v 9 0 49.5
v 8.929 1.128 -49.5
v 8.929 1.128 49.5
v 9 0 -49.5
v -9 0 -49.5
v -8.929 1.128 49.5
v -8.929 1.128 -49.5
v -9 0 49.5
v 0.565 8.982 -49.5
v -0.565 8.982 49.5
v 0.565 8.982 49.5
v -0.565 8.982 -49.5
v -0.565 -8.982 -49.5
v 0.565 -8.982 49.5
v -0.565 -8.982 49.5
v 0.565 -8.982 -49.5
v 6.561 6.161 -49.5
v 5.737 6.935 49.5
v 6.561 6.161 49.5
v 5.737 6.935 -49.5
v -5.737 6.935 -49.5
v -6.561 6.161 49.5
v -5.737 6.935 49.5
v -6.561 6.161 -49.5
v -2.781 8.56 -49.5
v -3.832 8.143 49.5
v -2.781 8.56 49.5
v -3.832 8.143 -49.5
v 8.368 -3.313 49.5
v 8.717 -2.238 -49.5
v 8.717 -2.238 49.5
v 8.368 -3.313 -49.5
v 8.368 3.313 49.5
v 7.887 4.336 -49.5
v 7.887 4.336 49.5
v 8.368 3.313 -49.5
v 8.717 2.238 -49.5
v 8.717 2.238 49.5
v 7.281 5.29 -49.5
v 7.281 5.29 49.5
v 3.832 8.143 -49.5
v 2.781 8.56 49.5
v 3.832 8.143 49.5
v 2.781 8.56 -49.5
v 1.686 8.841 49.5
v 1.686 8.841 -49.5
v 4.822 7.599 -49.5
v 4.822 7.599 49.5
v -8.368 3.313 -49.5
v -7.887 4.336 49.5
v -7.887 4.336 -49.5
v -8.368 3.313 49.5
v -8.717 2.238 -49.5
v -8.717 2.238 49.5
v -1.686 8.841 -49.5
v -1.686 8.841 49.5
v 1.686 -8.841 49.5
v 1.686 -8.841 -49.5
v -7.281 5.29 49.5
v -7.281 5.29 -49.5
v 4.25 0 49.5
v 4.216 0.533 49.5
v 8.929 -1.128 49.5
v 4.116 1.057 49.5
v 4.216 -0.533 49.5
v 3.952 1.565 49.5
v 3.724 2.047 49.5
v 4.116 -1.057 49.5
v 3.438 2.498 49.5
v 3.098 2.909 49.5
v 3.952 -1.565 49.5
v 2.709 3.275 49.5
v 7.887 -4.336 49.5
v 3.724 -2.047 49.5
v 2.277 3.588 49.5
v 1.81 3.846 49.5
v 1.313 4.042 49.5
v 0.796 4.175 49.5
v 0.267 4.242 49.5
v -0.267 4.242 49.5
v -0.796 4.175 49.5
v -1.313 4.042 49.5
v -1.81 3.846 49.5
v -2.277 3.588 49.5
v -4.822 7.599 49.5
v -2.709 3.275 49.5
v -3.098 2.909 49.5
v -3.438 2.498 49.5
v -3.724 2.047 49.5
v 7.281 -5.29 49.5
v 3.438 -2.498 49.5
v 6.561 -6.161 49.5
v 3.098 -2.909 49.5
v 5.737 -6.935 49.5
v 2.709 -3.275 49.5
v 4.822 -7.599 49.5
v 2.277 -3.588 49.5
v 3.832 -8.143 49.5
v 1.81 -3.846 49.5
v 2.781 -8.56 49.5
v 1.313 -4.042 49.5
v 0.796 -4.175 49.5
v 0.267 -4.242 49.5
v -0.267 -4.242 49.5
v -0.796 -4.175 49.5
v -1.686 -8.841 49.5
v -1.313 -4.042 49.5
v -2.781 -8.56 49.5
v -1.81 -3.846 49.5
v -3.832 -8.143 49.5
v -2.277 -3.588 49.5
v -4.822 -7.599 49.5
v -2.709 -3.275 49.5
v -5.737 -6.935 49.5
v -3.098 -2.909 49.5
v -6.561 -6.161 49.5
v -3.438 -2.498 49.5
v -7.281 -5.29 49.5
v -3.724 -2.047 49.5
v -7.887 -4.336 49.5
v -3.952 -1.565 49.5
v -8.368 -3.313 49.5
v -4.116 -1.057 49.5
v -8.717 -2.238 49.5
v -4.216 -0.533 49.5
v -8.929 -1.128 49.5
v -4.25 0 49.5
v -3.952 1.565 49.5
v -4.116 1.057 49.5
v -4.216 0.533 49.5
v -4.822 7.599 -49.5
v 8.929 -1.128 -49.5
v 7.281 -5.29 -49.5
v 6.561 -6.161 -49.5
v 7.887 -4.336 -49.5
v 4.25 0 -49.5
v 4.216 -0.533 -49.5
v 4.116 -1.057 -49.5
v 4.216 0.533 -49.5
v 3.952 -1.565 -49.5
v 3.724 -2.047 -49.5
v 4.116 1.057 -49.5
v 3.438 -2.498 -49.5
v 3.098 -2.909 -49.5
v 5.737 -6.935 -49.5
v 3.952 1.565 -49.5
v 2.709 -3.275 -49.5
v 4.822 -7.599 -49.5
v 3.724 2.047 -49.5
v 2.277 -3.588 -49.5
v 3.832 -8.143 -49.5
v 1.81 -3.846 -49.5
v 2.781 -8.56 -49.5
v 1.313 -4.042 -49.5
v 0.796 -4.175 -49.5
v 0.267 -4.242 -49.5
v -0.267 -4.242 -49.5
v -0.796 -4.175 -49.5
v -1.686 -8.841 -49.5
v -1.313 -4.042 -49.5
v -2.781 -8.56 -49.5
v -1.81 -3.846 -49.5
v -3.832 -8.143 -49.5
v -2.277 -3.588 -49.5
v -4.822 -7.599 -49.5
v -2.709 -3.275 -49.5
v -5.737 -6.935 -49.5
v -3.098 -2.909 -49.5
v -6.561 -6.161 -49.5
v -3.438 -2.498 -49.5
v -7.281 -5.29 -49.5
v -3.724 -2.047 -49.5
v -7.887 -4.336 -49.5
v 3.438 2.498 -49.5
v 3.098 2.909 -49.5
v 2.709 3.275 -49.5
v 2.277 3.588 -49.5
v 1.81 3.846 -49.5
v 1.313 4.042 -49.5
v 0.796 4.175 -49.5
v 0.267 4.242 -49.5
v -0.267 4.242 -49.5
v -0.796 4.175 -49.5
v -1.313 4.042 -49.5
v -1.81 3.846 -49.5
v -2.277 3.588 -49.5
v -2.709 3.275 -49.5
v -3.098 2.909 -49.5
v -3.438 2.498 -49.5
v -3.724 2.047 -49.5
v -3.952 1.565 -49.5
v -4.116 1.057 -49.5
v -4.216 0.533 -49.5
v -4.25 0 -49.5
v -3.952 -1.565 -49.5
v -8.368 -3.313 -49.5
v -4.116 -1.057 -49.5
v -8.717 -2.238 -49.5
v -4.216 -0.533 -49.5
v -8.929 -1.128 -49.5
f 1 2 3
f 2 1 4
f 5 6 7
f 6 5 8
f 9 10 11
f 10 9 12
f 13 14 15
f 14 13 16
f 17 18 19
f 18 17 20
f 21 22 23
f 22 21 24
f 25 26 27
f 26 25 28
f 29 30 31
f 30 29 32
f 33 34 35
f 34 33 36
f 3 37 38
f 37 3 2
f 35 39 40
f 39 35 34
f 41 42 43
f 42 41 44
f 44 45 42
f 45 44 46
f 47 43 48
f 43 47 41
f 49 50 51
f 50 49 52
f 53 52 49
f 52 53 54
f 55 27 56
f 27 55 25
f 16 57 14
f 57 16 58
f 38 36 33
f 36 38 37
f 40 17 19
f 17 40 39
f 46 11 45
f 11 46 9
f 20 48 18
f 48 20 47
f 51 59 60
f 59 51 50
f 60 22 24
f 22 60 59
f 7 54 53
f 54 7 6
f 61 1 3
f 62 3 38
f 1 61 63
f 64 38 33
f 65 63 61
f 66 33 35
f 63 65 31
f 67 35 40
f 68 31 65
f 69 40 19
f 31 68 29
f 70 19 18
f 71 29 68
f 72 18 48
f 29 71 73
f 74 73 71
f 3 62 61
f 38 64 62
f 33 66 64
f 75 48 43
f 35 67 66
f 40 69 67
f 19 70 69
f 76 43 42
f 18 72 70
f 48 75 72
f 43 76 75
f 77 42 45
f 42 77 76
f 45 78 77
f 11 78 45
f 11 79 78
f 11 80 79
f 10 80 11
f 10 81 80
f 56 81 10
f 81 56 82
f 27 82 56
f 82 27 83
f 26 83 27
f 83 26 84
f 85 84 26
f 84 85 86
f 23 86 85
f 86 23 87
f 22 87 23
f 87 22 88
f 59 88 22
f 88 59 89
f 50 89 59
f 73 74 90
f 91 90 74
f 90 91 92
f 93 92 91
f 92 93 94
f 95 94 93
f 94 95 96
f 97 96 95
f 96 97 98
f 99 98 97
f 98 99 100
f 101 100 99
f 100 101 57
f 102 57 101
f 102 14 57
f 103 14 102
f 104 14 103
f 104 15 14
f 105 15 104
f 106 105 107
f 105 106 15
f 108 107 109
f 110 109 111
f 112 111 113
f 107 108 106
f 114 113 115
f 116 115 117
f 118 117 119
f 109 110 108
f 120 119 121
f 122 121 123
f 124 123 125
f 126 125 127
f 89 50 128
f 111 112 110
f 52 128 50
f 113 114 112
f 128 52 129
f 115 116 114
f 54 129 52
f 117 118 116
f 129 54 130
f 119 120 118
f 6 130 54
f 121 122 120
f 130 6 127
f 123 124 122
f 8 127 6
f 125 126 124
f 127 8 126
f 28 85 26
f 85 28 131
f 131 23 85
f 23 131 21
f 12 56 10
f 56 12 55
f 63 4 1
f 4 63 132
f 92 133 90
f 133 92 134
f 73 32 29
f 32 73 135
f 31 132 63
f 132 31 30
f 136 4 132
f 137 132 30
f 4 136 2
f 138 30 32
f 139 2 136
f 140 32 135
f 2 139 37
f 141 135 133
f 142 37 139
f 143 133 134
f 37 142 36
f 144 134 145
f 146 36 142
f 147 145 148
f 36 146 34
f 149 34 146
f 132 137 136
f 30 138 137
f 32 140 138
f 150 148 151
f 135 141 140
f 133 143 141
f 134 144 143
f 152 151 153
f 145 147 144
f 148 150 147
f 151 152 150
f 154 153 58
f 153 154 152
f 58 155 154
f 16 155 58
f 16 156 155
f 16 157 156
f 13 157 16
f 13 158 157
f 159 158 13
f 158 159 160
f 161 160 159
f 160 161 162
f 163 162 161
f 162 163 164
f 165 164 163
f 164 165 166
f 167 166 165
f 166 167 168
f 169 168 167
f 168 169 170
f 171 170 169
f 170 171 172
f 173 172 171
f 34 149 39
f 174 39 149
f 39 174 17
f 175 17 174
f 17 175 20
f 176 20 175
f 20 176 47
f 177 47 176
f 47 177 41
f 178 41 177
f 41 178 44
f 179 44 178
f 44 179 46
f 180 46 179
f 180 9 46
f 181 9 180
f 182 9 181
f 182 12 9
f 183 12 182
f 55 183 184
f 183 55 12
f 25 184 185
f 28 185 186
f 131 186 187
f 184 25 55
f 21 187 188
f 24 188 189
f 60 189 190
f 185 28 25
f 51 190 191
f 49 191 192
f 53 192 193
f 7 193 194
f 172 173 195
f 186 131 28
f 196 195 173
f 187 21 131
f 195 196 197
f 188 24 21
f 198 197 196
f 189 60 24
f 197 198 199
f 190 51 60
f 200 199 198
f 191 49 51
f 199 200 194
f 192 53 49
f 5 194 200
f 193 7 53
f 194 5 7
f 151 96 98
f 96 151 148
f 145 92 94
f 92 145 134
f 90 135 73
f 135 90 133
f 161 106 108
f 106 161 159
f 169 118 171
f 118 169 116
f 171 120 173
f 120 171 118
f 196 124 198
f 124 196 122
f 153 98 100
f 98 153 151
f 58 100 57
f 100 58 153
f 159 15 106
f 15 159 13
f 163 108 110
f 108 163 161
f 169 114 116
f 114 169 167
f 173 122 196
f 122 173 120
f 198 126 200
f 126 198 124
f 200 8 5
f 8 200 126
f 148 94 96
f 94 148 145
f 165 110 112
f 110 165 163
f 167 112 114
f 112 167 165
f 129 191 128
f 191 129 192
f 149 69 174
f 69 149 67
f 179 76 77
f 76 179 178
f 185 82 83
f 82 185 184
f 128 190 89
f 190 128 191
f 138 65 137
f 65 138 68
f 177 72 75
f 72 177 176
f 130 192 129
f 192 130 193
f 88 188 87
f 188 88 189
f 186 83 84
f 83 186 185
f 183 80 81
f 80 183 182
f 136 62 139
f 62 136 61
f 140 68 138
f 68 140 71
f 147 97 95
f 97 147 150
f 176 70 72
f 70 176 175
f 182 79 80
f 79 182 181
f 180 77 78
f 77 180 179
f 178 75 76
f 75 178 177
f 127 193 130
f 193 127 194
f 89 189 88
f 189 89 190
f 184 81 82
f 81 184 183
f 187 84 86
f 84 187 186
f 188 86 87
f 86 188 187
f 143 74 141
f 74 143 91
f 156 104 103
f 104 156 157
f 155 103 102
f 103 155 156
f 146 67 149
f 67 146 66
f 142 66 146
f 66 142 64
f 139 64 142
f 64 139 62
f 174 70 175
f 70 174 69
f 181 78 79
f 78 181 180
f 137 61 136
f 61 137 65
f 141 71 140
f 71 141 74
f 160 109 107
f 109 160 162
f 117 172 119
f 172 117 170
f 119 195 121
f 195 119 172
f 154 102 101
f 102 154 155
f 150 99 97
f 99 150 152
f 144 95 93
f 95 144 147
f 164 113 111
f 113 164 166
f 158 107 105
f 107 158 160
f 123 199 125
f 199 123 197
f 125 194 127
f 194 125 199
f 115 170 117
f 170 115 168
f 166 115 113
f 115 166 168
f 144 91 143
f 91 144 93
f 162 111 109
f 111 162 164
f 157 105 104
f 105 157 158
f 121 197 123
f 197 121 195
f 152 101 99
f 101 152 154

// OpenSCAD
$fn = 50;


difference() {
	union() {
		translate(v = [0, 0, -49.5000000000]) {
			cylinder(h = 99, r = 9.0000000000);
		}
	}
	union() {
		translate(v = [0, 0, -100.0000000000]) {
			cylinder(h = 200, r = 4.2500000000);
		}
	}
}
